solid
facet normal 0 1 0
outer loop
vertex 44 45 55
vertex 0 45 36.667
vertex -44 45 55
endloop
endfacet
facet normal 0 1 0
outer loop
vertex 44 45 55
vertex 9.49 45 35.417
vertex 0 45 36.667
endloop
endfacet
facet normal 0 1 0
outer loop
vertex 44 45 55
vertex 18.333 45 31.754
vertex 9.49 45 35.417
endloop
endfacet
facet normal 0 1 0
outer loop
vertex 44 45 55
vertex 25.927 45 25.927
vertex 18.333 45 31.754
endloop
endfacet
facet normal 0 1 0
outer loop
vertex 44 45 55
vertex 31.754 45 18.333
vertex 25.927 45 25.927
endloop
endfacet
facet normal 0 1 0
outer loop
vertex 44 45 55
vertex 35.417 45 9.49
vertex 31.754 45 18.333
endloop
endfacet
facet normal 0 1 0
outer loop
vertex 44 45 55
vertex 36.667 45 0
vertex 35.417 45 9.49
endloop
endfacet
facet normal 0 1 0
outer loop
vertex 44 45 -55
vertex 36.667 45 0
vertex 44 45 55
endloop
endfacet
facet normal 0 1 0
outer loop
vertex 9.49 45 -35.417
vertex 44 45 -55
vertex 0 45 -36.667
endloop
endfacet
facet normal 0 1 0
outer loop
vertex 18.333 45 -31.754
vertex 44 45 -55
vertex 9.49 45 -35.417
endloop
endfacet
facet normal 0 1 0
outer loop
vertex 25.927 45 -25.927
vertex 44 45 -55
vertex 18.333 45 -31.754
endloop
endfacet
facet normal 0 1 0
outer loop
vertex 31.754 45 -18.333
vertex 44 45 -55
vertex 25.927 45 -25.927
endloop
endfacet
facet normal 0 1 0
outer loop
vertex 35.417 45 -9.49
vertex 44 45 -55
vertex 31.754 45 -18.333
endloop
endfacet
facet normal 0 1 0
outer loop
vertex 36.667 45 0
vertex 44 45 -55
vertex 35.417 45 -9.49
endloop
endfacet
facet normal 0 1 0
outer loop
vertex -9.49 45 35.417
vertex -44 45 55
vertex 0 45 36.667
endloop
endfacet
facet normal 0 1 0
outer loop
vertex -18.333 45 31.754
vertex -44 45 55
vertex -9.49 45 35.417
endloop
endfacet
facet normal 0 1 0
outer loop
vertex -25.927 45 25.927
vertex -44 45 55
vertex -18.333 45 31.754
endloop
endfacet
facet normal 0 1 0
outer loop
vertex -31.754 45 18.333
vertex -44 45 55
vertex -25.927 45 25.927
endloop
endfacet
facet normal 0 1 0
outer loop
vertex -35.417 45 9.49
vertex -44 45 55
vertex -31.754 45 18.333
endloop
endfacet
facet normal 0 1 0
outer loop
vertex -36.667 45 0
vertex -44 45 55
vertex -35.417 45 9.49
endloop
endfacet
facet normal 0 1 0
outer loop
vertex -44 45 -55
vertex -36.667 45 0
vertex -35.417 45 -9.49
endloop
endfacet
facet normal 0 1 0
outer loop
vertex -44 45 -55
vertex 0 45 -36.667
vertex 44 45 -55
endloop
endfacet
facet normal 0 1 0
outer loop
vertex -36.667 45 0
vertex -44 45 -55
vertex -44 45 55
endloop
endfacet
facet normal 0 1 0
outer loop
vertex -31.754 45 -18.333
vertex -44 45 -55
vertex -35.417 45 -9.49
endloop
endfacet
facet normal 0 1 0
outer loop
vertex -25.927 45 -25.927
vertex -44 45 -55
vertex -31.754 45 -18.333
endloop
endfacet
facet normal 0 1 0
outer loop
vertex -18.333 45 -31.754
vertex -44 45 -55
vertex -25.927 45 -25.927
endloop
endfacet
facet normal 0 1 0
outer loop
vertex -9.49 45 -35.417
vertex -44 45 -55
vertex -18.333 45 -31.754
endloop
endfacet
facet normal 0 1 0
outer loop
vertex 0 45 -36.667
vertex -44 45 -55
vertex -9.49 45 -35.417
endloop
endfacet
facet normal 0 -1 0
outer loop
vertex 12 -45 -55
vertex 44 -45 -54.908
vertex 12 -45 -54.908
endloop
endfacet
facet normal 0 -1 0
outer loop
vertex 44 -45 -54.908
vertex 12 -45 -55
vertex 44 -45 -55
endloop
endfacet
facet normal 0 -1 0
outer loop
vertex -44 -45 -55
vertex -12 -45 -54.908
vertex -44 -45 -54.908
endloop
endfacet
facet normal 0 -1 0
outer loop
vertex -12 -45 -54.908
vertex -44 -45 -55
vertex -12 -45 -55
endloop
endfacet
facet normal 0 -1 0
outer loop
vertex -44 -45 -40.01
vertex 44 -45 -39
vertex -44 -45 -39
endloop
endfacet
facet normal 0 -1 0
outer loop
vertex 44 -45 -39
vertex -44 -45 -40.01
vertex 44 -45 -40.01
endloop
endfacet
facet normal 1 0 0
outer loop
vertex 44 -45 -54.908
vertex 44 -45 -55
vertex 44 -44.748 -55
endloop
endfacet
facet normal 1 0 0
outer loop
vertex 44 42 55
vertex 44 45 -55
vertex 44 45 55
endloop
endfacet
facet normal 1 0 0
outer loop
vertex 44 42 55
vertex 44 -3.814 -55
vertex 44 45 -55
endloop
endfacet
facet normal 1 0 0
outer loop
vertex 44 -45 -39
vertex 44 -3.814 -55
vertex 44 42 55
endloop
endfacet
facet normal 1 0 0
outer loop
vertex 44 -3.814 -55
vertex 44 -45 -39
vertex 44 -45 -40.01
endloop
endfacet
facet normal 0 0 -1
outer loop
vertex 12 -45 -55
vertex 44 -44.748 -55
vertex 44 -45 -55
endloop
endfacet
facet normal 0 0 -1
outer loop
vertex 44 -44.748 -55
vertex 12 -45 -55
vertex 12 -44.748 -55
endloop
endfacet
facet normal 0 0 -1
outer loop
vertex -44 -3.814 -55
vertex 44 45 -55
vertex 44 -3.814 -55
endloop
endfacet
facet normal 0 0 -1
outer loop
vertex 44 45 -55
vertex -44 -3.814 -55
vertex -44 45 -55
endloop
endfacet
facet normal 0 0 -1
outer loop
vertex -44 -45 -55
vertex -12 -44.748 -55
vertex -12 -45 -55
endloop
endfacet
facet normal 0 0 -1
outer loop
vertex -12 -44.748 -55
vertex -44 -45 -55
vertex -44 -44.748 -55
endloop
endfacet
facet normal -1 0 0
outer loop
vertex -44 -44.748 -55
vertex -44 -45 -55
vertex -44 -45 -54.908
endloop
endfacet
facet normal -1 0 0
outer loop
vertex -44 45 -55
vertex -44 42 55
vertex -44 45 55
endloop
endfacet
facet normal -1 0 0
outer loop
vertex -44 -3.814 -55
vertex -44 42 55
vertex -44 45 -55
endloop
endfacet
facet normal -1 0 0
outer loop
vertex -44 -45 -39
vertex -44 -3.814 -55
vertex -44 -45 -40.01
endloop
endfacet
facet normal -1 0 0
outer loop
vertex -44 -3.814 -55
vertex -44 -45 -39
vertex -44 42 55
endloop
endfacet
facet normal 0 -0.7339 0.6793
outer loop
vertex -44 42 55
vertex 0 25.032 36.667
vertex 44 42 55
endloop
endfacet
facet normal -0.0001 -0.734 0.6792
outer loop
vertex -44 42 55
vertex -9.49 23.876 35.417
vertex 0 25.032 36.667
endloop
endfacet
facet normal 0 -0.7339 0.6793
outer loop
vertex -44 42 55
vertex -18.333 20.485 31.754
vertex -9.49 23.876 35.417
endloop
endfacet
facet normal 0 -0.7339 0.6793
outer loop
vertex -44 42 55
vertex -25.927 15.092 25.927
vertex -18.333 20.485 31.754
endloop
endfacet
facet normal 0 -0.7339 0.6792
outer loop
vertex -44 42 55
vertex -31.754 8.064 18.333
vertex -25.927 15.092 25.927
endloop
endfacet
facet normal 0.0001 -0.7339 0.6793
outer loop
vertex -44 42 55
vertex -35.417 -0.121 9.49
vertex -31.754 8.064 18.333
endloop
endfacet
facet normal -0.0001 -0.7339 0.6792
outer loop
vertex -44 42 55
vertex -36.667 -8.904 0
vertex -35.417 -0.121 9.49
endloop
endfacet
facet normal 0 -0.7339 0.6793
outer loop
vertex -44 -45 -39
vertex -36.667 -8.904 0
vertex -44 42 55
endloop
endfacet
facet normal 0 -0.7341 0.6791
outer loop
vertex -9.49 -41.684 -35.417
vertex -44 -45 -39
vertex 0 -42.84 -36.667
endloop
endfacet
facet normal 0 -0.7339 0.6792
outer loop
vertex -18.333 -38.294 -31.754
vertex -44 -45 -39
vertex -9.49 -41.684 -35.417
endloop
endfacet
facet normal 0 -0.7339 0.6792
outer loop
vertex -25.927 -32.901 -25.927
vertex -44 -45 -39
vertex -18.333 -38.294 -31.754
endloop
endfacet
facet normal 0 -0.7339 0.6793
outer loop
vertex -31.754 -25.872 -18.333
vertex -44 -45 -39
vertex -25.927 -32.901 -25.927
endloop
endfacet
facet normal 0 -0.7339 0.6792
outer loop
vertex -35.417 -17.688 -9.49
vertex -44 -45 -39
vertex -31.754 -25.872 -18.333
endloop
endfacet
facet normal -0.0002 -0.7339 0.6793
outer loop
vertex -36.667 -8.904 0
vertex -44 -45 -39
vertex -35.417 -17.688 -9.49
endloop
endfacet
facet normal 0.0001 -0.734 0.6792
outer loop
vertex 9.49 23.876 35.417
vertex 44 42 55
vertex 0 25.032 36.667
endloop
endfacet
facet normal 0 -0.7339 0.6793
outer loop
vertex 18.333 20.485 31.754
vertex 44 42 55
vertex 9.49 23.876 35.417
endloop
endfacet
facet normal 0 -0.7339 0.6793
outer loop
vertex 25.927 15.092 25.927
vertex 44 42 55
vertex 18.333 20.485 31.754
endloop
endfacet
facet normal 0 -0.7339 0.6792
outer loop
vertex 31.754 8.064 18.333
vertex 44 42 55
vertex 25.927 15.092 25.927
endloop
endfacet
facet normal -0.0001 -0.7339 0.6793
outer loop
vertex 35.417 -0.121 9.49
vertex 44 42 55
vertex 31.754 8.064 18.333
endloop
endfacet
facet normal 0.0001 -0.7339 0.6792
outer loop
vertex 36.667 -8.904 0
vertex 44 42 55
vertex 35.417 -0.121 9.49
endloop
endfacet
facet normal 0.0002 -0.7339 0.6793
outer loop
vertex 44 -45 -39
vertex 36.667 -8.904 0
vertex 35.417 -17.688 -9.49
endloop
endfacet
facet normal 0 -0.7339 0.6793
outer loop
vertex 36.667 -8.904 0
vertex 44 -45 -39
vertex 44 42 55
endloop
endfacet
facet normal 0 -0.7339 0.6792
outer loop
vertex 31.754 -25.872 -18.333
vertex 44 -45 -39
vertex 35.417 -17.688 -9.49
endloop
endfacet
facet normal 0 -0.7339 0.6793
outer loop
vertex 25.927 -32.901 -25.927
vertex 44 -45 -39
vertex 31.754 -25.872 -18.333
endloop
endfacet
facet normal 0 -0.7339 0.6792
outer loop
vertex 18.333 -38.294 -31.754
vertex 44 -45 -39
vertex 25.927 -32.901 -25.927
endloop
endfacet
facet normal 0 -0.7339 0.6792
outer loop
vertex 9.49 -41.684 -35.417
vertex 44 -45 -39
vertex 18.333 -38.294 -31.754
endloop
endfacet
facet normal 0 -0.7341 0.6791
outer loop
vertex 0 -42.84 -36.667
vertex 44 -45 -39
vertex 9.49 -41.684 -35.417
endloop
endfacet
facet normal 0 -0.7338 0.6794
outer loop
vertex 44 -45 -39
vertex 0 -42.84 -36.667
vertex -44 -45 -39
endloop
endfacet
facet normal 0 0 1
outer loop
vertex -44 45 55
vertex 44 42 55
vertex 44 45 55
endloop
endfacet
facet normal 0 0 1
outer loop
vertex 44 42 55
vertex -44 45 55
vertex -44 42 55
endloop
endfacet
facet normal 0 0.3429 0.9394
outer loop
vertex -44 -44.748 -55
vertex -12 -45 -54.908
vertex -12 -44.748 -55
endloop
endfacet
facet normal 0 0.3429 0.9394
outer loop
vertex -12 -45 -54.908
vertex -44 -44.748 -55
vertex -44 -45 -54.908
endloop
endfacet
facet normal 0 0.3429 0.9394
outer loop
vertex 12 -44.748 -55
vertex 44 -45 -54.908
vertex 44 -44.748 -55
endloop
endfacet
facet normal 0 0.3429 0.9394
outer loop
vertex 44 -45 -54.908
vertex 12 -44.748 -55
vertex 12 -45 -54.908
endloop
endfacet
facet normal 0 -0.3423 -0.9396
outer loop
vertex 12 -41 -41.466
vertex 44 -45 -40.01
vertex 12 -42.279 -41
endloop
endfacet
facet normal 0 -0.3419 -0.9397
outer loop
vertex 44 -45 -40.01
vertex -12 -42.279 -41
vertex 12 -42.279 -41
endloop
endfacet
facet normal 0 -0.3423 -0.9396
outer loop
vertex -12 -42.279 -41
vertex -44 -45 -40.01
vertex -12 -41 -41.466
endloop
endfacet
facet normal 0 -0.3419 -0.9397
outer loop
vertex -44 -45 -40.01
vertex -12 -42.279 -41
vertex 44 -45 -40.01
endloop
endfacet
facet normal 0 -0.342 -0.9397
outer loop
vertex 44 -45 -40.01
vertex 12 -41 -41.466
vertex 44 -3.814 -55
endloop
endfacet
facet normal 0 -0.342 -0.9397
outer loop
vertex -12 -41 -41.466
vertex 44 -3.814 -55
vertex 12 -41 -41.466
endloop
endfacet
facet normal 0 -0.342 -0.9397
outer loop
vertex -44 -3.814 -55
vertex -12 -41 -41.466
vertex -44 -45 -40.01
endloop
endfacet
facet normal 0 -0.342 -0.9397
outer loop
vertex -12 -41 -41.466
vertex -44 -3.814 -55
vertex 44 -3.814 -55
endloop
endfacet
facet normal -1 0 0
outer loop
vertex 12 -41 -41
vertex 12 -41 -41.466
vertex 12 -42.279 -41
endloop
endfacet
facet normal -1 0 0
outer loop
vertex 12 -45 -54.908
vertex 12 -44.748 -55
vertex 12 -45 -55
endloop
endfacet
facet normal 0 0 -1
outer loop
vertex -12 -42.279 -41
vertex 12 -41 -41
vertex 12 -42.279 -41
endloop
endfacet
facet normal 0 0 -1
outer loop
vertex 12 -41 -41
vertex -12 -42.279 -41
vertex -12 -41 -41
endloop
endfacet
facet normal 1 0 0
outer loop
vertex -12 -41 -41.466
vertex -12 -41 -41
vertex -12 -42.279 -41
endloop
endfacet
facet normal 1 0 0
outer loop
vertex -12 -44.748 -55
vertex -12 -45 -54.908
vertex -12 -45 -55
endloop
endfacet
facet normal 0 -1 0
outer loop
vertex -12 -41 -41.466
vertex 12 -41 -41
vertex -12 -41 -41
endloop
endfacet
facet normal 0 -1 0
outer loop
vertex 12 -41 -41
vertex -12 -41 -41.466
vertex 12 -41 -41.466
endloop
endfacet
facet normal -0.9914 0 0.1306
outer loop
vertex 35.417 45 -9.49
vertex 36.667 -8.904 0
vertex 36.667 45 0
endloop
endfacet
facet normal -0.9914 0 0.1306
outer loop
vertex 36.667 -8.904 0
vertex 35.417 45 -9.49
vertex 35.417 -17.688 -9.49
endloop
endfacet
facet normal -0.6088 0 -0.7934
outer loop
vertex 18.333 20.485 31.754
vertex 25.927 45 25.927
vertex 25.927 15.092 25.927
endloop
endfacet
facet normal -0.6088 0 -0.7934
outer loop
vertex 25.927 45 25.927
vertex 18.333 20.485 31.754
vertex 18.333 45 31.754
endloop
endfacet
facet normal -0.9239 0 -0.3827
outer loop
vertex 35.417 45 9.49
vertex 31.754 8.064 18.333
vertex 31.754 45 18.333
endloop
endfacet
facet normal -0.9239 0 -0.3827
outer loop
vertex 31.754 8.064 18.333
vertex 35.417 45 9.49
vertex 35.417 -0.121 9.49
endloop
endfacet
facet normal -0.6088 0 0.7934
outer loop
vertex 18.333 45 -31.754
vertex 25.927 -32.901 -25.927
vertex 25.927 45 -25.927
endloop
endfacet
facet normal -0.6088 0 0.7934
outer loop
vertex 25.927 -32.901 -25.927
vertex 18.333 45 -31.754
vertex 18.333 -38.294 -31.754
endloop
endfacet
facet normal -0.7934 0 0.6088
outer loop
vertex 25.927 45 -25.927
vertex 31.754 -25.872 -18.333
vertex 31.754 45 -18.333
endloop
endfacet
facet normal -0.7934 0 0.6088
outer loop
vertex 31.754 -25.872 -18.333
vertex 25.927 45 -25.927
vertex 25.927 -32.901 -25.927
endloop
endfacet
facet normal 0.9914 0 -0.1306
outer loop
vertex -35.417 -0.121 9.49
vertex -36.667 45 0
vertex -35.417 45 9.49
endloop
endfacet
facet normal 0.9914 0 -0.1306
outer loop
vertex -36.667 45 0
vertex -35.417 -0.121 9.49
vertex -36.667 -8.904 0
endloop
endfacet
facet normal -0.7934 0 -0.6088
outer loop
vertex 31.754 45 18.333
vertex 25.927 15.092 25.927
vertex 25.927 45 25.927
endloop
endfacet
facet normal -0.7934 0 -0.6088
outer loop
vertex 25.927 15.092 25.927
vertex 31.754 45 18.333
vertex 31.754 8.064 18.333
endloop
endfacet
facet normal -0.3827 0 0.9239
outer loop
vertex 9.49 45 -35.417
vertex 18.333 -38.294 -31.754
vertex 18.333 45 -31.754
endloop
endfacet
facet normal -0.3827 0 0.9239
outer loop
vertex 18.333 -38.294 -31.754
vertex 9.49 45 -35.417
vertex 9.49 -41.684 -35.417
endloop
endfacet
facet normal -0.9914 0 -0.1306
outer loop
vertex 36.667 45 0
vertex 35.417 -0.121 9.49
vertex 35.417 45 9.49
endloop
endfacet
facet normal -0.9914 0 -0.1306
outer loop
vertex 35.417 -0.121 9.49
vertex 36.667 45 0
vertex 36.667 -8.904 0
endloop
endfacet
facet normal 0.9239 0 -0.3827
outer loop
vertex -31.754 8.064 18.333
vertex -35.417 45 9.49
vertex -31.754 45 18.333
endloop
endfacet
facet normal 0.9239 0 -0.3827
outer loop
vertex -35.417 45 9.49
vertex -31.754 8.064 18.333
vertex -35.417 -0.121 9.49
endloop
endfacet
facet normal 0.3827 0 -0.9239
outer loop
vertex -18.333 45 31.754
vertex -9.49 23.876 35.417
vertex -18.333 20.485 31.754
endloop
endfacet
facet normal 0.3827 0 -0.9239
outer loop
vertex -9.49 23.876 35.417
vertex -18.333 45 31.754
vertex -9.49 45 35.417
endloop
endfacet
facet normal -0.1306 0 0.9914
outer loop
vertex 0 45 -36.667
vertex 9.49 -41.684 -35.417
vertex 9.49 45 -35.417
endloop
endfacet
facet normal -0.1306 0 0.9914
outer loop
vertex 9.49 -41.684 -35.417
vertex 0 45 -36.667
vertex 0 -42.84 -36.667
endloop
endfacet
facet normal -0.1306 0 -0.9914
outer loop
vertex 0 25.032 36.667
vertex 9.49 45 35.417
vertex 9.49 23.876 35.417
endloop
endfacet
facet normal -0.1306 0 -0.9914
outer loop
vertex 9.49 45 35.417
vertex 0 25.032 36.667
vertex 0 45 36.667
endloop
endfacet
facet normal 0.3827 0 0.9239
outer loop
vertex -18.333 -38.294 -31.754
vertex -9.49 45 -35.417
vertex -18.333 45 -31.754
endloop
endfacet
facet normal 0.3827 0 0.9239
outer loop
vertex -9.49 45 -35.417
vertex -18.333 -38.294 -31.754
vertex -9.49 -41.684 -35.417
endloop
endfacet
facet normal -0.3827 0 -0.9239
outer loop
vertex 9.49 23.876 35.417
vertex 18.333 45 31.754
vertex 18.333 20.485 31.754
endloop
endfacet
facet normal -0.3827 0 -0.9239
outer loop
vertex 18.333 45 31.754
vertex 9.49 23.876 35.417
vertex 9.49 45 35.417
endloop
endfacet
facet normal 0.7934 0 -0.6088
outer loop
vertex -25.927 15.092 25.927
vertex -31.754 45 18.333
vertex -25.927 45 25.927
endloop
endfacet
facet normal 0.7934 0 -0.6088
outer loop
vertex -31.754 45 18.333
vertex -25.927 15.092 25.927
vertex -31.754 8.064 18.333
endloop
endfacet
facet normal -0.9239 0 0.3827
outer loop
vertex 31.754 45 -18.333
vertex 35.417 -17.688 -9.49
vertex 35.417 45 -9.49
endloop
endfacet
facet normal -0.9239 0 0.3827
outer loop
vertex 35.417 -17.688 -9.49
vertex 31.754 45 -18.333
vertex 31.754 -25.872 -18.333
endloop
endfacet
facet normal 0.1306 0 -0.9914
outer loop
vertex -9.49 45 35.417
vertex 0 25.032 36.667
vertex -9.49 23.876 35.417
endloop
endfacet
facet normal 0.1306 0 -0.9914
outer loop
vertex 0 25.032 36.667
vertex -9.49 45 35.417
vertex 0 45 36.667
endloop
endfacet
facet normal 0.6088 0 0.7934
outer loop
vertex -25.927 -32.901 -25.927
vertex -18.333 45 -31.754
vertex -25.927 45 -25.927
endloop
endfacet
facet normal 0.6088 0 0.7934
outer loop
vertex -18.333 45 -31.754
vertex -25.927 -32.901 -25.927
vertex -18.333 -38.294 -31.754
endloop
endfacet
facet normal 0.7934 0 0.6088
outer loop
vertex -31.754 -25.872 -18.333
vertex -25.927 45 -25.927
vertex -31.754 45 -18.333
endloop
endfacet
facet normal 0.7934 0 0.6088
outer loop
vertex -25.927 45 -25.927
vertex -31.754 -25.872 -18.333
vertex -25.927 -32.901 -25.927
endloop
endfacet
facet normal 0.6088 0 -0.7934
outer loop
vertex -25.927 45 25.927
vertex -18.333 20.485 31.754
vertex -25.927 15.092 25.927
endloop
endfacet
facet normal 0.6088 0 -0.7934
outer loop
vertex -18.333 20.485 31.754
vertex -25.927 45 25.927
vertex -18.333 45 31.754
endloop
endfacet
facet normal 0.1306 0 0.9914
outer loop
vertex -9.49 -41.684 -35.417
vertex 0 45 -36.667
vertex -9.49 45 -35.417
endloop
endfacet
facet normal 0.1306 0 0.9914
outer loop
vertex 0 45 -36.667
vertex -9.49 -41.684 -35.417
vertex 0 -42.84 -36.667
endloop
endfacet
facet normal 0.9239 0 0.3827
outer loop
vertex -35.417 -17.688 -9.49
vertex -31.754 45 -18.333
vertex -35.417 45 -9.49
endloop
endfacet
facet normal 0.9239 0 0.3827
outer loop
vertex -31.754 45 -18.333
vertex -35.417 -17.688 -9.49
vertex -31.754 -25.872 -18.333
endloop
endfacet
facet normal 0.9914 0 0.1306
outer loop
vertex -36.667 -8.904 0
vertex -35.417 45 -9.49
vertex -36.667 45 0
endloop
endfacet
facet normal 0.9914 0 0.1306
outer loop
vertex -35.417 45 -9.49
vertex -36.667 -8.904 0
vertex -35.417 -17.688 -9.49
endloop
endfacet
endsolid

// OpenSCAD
$fn=24;

// -- Parámetros Configurables --
// Basado en un smartphone grande tipo Pixel con funda
phone_width = 88;       // Ancho del hueco para el teléfono (holgura incluida)
phone_thickness = 14;   // Grosor del hueco para el teléfono y funda

// Geometría del soporte
wall = 3;               // Grosor de pared (Regla: >= 2mm. 3mm es más robusto)
stand_angle = 70;       // Ángulo de inclinación del teléfono (grados desde la mesa)
front_lip_height = 16;  // Altura del labio frontal
back_rest_height = 110; // Altura total del respaldo
base_depth = 90;        // Profundidad de la base para máxima estabilidad

// Recorte para el cable USB-C
usb_cutout_width = 24;
usb_cutout_height = 14;

// -- Dimensiones calculadas para el centrado --
// Estas variables definen el tamaño total del objeto para poder centrarlo en (0,0,0)
total_width = phone_width;
total_depth = base_depth;
total_height = back_rest_height;


// -- Módulo de construcción del soporte --
// Se construye en una posición fija y luego se centra globalmente
module build_stand() {
    difference() {
        
        // 1. Cuerpo principal sólido (forma de cuña)
        // Se crea con hull() para una forma suave y robusta
        hull() {
            // Pilar base frontal
            cube([total_width, wall, front_lip_height]);
            // Pilar trasero alto
            translate([0, total_depth - wall, 0]) {
                cube([total_width, wall, total_height]);
            }
        }
        
        // 2. Recorte para el hueco del teléfono
        // Es un cubo grande que se inclina y se posiciona para cortar el hueco
        translate([-1, wall, -1]) {
            rotate([-(90 - stand_angle), 0, 0]) {
                // El cubo es mucho más grande que el hueco para asegurar un corte limpio
                translate([0, -total_height, 0]) {
                    cube([total_width + 2, total_height * 2, phone_thickness]);
                }
            }
        }
        
        // 3. Recorte para el conector USB-C
        // Un cubo simple que atraviesa el labio frontal
        translate([(total_width - usb_cutout_width) / 2, -1, 0]) {
            cube([usb_cutout_width, wall + 2, usb_cutout_height]);
        }
        
        // 4. (Opcional) Recorte trasero para ahorrar material y tiempo de impresión
        translate([total_width / 2, total_depth, total_height / 2]) {
             rotate([90,0,0]){
                cylinder(h = total_depth*2, r = total_height/3, center=true);
             }
        }
    }
}


// -- Ensamblado y Centrado Final --
// Se traslada el objeto construido para que su centro geométrico coincida con el origen (0,0,0)
translate([-total_width / 2, -total_depth / 2, -total_height / 2]) {
    build_stand();
}
